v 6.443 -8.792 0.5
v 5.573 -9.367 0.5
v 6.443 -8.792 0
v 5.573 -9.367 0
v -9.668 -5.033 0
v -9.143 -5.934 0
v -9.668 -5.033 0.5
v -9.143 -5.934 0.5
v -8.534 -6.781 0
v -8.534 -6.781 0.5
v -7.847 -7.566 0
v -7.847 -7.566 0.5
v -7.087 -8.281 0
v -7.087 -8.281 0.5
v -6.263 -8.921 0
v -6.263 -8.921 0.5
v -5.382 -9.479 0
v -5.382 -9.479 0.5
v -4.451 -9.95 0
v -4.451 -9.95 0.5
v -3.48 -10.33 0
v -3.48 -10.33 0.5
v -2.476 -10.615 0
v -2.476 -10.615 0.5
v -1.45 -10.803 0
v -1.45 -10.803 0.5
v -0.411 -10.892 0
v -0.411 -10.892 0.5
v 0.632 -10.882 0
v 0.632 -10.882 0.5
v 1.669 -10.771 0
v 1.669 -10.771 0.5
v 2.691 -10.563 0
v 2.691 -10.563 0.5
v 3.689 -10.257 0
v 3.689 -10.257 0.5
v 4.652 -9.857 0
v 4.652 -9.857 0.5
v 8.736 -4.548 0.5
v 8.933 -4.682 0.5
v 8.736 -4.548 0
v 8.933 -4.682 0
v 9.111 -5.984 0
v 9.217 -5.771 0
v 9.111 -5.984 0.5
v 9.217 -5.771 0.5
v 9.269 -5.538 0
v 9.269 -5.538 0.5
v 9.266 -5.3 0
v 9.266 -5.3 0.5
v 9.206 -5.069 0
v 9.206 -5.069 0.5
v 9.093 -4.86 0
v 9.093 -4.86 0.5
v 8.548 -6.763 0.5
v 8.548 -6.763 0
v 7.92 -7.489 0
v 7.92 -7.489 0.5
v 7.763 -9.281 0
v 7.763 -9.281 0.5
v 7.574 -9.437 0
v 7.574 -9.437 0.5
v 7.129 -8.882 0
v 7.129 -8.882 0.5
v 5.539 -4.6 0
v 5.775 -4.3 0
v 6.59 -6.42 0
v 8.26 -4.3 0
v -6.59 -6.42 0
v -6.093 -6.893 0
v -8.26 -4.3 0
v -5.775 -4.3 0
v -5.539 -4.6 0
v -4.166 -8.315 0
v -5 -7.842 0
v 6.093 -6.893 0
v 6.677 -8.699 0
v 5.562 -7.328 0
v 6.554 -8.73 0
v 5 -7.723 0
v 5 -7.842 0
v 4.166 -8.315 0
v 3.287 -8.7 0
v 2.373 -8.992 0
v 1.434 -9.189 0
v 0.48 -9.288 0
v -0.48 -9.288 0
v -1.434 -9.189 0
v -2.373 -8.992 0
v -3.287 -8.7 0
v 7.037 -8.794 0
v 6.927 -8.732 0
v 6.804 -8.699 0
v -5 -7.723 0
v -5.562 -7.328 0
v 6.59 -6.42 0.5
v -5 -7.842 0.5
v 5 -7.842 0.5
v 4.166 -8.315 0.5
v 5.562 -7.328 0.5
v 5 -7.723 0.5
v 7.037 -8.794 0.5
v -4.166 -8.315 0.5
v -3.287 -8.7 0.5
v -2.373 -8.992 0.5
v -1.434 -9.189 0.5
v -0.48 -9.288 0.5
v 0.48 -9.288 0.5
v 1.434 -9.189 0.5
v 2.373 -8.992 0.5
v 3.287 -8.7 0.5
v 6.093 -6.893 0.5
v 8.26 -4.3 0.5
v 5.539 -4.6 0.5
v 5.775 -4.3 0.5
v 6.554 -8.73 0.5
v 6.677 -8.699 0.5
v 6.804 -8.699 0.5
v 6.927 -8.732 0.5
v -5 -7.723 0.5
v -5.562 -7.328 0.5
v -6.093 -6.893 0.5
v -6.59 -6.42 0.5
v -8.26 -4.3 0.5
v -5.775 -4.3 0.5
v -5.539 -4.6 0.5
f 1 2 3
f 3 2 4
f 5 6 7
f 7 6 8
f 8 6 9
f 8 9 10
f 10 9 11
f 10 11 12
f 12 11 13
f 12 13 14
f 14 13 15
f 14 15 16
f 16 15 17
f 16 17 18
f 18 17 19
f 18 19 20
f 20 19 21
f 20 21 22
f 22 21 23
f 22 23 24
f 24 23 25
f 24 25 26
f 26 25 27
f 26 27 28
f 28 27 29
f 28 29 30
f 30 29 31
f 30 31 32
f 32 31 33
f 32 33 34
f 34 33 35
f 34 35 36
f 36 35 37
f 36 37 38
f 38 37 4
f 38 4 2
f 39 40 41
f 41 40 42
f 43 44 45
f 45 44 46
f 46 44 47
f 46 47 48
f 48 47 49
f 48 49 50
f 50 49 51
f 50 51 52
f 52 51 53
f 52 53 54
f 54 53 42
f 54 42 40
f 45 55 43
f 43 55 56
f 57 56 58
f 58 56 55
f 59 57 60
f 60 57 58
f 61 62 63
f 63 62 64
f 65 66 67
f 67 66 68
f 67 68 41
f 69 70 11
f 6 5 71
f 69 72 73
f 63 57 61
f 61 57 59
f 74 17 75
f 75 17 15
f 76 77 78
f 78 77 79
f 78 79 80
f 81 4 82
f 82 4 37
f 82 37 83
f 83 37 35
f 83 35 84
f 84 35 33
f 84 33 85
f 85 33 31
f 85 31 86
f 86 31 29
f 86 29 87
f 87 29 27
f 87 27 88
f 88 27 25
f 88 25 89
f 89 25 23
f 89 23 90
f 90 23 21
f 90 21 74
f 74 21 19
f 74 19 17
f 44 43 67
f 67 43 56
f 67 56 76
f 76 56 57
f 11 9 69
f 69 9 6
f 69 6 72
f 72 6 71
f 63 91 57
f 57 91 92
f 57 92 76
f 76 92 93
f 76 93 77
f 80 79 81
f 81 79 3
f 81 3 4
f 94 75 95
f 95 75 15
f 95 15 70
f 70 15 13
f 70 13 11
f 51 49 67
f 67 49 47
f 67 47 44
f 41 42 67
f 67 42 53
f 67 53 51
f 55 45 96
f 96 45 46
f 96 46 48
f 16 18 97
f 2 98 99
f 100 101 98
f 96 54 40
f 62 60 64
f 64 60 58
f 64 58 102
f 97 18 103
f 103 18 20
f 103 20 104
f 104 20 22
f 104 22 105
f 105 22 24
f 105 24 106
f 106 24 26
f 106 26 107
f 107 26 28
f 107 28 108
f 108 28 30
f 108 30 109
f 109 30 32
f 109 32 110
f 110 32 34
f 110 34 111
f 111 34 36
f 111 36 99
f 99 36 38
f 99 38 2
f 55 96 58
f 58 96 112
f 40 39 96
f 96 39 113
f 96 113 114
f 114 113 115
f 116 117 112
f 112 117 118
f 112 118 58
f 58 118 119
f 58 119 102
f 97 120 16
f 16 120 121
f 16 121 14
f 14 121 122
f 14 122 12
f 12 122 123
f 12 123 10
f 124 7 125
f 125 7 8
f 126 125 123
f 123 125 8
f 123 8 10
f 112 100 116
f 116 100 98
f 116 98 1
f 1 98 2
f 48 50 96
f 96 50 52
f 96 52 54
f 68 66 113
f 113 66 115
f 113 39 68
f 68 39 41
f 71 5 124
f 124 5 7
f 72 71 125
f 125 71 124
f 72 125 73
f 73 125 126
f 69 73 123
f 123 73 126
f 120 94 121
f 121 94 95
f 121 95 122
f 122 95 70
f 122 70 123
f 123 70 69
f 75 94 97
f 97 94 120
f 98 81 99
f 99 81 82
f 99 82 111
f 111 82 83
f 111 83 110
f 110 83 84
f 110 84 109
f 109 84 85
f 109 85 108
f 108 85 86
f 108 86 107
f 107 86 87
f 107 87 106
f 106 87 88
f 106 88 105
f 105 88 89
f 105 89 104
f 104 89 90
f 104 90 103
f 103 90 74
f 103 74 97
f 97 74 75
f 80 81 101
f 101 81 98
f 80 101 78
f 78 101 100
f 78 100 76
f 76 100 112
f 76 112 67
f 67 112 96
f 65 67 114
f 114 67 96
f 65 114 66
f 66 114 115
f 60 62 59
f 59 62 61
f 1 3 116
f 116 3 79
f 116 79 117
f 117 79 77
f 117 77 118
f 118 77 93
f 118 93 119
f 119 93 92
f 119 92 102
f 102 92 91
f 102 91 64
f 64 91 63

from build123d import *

# Parameters (mm, degrees)
OTHER_10076_5_DEPTH = 0.5
CUT_EXTRUDE1_START  = -0.5
CUT_EXTRUDE1_DEPTH  = 0.5


# Read off the part's stored shape, not the designer's step: 10076-5
with BuildPart() as part:
    # Other 10076-5 outline → Other 10076-5 (new body)
    with BuildSketch(Plane.XY):
        with BuildLine():
            ThreePointArc((7.573674013, -9.436602245), (7.668819519, -9.359444812), (7.763179028, -9.281328104))
            Line((7.763179028, -9.281328104), (7.919995926, -7.488902759))
            ThreePointArc((7.919995926, -7.488902759), (8.548470738, -6.76266575), (9.110578105, -5.983925684))
            ThreePointArc((9.110578105, -5.983925684), (9.242448569, -5.182849851), (8.736493865, -4.547930843))
            Line((8.736493865, -4.547930843), (8.260223146, -4.3))
            Line((8.260223146, -4.3), (5.774945887, -4.3))
            ThreePointArc((5.774945887, -4.3), (5.659072475, -4.451392897), (5.53923133, -4.5996648))
            Line((5.53923133, -4.5996648), (6.59, -6.419649523))
            ThreePointArc((6.59, -6.419649523), (5.831509763, -7.1157216), (5, -7.722693831))
            Line((5, -7.722693831), (5, -7.841555968))
            ThreePointArc((5, -7.841555968), (0, -9.3), (-5, -7.841555968))
            Line((-5, -7.841555968), (-5, -7.722693831))
            ThreePointArc((-5, -7.722693831), (-5.831509763, -7.1157216), (-6.59, -6.419649523))
            Line((-6.59, -6.419649523), (-5.53923133, -4.5996648))
            ThreePointArc((-5.53923133, -4.5996648), (-5.659072475, -4.451392897), (-5.774945887, -4.3))
            Line((-5.774945887, -4.3), (-8.260223146, -4.3))
            Line((-8.260223146, -4.3), (-10.732831081, -5.58715822))
            ThreePointArc((-10.732831081, -5.58715822), (-10.675718173, -5.6955282), (-10.617511084, -5.803314431))
            Line((-10.617511084, -5.803314431), (-9.055174855, -6.258693914))
            ThreePointArc((-9.055174855, -6.258693914), (-8.704696722, -6.64117368), (-8.882127626, -7.128661083))
            Line((-8.882127626, -7.128661083), (-9.436602245, -7.573674013))
            ThreePointArc((-9.436602245, -7.573674013), (-9.359444812, -7.668819519), (-9.281328104, -7.763179028))
            Line((-9.281328104, -7.763179028), (-7.660171598, -7.905011844))
            ThreePointArc((-7.660171598, -7.905011844), (-7.241809703, -8.211767477), (-7.320727248, -8.724502998))
            Line((-7.320727248, -8.724502998), (-7.777730077, -9.269137762))
            ThreePointArc((-7.777730077, -9.269137762), (-7.683493234, -9.347402405), (-7.588468891, -9.424709008))
            Line((-7.588468891, -9.424709008), (-5.970792243, -9.247544602))
            ThreePointArc((-5.970792243, -9.247544602), (-5.500623999, -9.466787654), (-5.477995427, -9.985067155))
            Line((-5.477995427, -9.985067155), (-5.819964104, -10.608393744))
            ThreePointArc((-5.819964104, -10.608393744), (-5.712269322, -10.666769858), (-5.603989074, -10.724052707))
            Line((-5.603989074, -10.724052707), (-4.05195869, -10.234699407))
            ThreePointArc((-4.05195869, -10.234699407), (-3.548052399, -10.358004491), (-3.424747314, -10.861910782))
            Line((-3.424747314, -10.861910782), (-3.638540174, -11.539975104))
            ThreePointArc((-3.638540174, -11.539975104), (-3.521526102, -11.576219327), (-3.404151099, -11.611277074))
            Line((-3.404151099, -11.611277074), (-1.977410637, -10.828540453))
            ThreePointArc((-1.977410637, -10.828540453), (-1.459131136, -10.851169025), (-1.239888083, -11.321337268))
            Line((-1.239888083, -11.321337268), (-1.317289186, -12.028081692))
            ThreePointArc((-1.317289186, -12.028081692), (-1.195452609, -12.04080118), (-1.073493507, -12.052286575))
            Line((-1.073493507, -12.052286575), (0.173128198, -11.006246762))
            ThreePointArc((0.173128198, -11.006246762), (0.685863719, -10.927329218), (0.992619352, -11.345691113))
            Line((0.992619352, -11.345691113), (1.054584487, -12.053955847))
            ThreePointArc((1.054584487, -12.053955847), (1.176561457, -12.042661796), (1.298417839, -12.030133462))
            Line((1.298417839, -12.030133462), (2.317013814, -10.760989181))
            ThreePointArc((2.317013814, -10.760989181), (2.804501216, -10.583558277), (3.186980982, -10.93403641))
            Line((3.186980982, -10.93403641), (3.38593107, -11.616603238))
            ThreePointArc((3.38593107, -11.616603238), (3.503360927, -11.581729673), (3.620431715, -11.545669067))
            Line((3.620431715, -11.545669067), (4.371857887, -10.10219282))
            ThreePointArc((4.371857887, -10.10219282), (4.815363304, -9.833067127), (5.258868721, -10.10219282))
            Line((5.258868721, -10.10219282), (5.58715822, -10.732831081))
            ThreePointArc((5.58715822, -10.732831081), (5.6955282, -10.675718173), (5.803314431, -10.617511084))
            Line((5.803314431, -10.617511084), (6.258693914, -9.055174855))
            ThreePointArc((6.258693914, -9.055174855), (6.64117368, -8.704696722), (7.128661083, -8.882127626))
            Line((7.128661083, -8.882127626), (7.573674013, -9.436602245))
        make_face()
    extrude(amount=OTHER_10076_5_DEPTH)

    # Sketch1 → Cut-Extrude1 (cut)
    with BuildSketch(Plane.XY.offset(0.5).offset(CUT_EXTRUDE1_START)):
        with BuildLine():
            Line((-9.668418082, -5.033059884), (-10.732831081, -5.58715822))
            ThreePointArc((-10.732831081, -5.58715822), (-3.521526102, -11.576219327), (5.803314431, -10.617511084))
            Line((5.803314431, -10.617511084), (6.258693914, -9.055174855))
            ThreePointArc((6.258693914, -9.055174855), (6.329177308, -8.908251896), (6.443160998, -8.791795969))
            ThreePointArc((6.443160998, -8.791795969), (-2.476407691, -10.614961373), (-9.668418082, -5.033059884))
        make_face()
    extrude(amount=CUT_EXTRUDE1_DEPTH, mode=Mode.SUBTRACT)


solid = part.part
